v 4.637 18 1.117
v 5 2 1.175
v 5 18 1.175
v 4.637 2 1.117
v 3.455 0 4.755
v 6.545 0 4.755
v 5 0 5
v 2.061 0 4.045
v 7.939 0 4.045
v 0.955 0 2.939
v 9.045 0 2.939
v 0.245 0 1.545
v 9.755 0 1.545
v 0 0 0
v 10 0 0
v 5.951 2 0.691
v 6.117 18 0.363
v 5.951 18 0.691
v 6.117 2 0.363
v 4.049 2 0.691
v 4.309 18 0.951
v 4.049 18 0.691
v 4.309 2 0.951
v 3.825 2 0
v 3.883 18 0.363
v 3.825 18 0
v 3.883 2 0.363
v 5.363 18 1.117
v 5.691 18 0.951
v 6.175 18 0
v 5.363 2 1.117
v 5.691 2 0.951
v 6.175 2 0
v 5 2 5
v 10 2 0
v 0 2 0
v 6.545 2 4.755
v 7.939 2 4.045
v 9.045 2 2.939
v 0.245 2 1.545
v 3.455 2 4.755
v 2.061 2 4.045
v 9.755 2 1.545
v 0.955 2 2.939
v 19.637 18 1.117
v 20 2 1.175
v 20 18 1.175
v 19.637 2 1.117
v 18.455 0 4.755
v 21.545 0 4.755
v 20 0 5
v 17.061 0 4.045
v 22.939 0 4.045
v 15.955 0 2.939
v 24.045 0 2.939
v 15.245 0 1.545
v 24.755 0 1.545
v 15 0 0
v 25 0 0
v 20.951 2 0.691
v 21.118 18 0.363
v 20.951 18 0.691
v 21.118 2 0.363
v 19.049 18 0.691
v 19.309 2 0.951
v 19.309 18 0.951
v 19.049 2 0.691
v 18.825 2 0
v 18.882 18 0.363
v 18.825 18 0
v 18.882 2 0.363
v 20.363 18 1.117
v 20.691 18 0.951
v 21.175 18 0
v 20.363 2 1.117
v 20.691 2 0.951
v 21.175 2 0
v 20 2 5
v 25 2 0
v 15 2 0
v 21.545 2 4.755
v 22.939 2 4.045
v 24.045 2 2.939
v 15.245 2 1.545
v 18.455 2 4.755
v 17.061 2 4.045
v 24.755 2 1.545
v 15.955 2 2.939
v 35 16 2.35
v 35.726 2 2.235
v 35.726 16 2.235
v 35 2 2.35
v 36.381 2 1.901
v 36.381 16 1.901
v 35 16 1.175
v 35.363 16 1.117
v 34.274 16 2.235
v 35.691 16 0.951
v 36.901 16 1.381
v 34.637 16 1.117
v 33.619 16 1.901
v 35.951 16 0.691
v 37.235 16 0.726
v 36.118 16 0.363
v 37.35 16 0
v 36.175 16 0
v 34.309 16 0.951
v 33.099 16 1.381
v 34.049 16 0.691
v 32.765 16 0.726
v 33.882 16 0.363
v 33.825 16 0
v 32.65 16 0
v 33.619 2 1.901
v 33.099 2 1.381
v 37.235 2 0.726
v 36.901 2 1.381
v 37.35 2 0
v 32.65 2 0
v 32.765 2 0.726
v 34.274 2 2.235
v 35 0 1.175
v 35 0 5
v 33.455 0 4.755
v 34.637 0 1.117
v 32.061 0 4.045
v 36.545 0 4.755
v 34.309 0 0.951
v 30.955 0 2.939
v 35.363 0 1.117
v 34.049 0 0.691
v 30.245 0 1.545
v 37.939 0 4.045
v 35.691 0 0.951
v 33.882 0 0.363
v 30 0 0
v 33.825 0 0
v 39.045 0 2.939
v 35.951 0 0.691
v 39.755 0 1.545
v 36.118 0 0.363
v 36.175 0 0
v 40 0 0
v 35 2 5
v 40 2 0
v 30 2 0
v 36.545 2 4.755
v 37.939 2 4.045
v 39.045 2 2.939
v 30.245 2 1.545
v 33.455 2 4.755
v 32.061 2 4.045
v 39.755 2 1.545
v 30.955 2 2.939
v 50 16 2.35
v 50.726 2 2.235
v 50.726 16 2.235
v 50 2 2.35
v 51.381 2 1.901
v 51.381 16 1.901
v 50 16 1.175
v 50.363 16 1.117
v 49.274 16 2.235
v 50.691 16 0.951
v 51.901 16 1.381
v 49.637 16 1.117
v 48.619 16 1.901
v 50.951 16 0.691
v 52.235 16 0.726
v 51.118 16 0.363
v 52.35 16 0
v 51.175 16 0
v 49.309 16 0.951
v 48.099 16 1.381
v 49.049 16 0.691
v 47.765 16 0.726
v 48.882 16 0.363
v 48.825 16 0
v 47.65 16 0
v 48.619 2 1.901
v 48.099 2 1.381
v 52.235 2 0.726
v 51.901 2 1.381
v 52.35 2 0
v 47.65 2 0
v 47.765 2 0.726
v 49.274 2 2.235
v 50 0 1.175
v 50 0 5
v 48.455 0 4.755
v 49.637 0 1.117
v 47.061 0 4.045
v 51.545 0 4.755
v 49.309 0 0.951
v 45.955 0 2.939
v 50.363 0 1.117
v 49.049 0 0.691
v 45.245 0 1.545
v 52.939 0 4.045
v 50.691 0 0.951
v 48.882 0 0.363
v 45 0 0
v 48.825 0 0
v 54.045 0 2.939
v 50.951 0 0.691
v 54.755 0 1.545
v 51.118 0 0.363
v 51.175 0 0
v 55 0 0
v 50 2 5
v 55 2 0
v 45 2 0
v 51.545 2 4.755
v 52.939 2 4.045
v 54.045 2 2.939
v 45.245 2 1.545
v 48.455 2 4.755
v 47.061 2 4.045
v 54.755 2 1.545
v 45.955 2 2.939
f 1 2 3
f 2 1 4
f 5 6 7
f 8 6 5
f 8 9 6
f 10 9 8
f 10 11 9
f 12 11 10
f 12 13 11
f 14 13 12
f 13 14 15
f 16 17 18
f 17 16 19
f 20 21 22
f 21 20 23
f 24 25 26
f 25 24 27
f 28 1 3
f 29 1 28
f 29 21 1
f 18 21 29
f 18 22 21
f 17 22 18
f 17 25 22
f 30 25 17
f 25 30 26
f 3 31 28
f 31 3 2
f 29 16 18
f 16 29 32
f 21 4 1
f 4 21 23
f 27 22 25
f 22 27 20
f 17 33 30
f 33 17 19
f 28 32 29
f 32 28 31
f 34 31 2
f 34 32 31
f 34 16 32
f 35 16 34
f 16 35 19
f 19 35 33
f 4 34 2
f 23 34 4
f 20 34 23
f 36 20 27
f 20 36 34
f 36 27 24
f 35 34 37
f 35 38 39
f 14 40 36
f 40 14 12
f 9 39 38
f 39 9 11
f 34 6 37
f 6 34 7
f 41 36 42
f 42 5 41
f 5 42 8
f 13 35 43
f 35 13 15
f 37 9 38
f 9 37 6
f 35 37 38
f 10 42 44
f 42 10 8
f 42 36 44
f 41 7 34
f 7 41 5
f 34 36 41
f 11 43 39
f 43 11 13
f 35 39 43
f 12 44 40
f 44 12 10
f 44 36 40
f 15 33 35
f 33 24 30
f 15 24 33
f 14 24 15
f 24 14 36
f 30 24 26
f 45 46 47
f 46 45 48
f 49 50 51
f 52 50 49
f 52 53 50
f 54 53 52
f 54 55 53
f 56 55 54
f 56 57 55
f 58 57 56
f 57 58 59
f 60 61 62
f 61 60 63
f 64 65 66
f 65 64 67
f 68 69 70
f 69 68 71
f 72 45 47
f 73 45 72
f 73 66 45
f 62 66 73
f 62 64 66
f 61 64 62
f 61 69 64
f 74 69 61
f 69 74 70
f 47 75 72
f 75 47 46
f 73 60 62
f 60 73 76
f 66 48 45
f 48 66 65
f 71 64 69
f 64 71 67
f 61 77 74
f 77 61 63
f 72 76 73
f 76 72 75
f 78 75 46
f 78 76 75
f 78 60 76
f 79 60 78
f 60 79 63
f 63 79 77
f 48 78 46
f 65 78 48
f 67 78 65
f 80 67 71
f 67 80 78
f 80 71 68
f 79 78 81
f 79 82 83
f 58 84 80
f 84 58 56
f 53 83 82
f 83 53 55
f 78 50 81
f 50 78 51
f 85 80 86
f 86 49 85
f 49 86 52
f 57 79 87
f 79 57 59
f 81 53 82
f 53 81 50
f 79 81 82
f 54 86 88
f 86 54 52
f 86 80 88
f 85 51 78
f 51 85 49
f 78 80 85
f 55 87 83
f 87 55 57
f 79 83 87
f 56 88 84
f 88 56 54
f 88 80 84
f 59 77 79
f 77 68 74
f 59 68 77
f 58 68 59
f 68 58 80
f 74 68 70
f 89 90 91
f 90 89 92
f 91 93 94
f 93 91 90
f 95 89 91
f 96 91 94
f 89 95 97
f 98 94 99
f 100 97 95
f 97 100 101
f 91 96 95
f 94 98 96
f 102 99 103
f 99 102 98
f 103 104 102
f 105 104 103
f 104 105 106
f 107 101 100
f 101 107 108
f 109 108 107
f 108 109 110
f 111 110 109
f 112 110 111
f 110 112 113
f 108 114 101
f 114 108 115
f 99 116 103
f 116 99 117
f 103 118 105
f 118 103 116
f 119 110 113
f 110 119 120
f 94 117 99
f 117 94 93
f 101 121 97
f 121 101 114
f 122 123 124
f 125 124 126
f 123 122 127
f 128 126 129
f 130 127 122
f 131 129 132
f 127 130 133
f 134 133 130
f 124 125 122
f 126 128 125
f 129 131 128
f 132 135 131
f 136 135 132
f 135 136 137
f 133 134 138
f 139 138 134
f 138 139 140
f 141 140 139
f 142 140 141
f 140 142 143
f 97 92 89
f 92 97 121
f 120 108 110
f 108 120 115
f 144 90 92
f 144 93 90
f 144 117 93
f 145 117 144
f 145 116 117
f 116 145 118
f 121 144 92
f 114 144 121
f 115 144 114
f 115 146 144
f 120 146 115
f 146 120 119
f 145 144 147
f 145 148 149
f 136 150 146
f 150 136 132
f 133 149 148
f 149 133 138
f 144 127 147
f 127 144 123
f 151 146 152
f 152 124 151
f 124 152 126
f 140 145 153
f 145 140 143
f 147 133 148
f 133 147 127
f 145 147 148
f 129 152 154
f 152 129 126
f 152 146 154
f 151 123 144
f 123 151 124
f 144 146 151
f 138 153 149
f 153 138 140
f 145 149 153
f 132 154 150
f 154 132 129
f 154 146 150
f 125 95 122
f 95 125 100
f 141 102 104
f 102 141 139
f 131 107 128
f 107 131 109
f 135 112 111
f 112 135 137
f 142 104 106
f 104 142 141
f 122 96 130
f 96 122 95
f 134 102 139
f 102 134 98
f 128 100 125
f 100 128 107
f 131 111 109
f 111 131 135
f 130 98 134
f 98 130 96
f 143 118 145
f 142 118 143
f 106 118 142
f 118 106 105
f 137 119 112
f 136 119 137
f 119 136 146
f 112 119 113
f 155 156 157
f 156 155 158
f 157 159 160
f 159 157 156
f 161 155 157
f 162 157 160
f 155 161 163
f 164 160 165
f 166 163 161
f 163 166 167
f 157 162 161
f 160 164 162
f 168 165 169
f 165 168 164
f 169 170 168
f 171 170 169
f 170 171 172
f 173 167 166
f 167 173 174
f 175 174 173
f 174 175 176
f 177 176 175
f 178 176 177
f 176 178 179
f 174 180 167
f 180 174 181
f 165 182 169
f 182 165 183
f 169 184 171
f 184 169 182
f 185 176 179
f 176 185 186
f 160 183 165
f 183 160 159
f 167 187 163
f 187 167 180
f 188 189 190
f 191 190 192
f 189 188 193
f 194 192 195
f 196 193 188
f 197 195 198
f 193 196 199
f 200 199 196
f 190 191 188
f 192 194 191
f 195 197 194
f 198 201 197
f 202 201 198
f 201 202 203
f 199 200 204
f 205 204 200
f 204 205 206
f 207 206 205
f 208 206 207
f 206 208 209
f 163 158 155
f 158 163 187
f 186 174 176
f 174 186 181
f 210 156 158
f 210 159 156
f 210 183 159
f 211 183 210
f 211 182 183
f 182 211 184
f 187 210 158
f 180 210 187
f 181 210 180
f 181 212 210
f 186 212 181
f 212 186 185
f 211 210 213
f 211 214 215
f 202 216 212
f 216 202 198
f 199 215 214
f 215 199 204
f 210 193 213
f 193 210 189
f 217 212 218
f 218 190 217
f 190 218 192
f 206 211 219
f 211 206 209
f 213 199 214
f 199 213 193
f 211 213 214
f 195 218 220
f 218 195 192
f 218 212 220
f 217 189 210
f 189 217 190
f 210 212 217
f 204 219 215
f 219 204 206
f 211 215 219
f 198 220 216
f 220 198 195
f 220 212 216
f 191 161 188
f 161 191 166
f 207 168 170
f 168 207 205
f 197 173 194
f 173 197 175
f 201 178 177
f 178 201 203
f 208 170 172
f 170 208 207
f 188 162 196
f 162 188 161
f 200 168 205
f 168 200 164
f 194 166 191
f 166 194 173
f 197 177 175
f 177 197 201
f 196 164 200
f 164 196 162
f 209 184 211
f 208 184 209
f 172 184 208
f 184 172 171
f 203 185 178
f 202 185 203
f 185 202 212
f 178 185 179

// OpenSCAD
$fn=20;
HeadHeight=2; // [1,1.5,2,2.5,3]
HeadDiameter=10; //[7:15]
SleeveLength=14; //[1:100]
SleeveOutterDiameter=4.7;//[5.00,5.08,6,7,8,9,10]
Play=0;// [0.0,0.1,0.2,0.3,0.4,0.5]

HeadRadius=HeadDiameter/2;
SleeveOutterRadius=SleeveOutterDiameter/2;
SleeveInnerRadius=(SleeveOutterRadius/2)-Play;

O1=HeadDiameter/2;
O2=HeadDiameter+10;
O3=(HeadDiameter*2)+15;
O4=(HeadDiameter*3)+20;

translate([O1,0,0]) core();
translate([O2,0,0]) core();
translate([O3,0,0]) outter();
translate([O4,0,0]) outter();

module core() {
	difference() {
		union() {
			rotate([-90,0,0]) cylinder(r=SleeveInnerRadius,h=SleeveLength+(HeadHeight*2));
			rotate([-90,0,0]) cylinder(r=HeadRadius,h=HeadHeight);
		}
		translate([-HeadRadius,0,-HeadRadius]) cube([HeadDiameter+1,SleeveLength+(HeadHeight*2)+1,HeadRadius]);
	}
}

module outter() {
	difference() {
		union() {
			rotate([-90,0,0]) cylinder(r=SleeveOutterRadius,h=SleeveLength+HeadHeight);
			rotate([-90,0,0]) cylinder(r=HeadRadius,h=HeadHeight);
		}
		rotate([-90,0,0]) cylinder(r=SleeveInnerRadius+Play,h=SleeveLength+HeadHeight);
		translate([-HeadRadius,0,-HeadRadius]) cube([HeadDiameter+1,SleeveLength+HeadHeight+1,HeadRadius]);
	}
}
